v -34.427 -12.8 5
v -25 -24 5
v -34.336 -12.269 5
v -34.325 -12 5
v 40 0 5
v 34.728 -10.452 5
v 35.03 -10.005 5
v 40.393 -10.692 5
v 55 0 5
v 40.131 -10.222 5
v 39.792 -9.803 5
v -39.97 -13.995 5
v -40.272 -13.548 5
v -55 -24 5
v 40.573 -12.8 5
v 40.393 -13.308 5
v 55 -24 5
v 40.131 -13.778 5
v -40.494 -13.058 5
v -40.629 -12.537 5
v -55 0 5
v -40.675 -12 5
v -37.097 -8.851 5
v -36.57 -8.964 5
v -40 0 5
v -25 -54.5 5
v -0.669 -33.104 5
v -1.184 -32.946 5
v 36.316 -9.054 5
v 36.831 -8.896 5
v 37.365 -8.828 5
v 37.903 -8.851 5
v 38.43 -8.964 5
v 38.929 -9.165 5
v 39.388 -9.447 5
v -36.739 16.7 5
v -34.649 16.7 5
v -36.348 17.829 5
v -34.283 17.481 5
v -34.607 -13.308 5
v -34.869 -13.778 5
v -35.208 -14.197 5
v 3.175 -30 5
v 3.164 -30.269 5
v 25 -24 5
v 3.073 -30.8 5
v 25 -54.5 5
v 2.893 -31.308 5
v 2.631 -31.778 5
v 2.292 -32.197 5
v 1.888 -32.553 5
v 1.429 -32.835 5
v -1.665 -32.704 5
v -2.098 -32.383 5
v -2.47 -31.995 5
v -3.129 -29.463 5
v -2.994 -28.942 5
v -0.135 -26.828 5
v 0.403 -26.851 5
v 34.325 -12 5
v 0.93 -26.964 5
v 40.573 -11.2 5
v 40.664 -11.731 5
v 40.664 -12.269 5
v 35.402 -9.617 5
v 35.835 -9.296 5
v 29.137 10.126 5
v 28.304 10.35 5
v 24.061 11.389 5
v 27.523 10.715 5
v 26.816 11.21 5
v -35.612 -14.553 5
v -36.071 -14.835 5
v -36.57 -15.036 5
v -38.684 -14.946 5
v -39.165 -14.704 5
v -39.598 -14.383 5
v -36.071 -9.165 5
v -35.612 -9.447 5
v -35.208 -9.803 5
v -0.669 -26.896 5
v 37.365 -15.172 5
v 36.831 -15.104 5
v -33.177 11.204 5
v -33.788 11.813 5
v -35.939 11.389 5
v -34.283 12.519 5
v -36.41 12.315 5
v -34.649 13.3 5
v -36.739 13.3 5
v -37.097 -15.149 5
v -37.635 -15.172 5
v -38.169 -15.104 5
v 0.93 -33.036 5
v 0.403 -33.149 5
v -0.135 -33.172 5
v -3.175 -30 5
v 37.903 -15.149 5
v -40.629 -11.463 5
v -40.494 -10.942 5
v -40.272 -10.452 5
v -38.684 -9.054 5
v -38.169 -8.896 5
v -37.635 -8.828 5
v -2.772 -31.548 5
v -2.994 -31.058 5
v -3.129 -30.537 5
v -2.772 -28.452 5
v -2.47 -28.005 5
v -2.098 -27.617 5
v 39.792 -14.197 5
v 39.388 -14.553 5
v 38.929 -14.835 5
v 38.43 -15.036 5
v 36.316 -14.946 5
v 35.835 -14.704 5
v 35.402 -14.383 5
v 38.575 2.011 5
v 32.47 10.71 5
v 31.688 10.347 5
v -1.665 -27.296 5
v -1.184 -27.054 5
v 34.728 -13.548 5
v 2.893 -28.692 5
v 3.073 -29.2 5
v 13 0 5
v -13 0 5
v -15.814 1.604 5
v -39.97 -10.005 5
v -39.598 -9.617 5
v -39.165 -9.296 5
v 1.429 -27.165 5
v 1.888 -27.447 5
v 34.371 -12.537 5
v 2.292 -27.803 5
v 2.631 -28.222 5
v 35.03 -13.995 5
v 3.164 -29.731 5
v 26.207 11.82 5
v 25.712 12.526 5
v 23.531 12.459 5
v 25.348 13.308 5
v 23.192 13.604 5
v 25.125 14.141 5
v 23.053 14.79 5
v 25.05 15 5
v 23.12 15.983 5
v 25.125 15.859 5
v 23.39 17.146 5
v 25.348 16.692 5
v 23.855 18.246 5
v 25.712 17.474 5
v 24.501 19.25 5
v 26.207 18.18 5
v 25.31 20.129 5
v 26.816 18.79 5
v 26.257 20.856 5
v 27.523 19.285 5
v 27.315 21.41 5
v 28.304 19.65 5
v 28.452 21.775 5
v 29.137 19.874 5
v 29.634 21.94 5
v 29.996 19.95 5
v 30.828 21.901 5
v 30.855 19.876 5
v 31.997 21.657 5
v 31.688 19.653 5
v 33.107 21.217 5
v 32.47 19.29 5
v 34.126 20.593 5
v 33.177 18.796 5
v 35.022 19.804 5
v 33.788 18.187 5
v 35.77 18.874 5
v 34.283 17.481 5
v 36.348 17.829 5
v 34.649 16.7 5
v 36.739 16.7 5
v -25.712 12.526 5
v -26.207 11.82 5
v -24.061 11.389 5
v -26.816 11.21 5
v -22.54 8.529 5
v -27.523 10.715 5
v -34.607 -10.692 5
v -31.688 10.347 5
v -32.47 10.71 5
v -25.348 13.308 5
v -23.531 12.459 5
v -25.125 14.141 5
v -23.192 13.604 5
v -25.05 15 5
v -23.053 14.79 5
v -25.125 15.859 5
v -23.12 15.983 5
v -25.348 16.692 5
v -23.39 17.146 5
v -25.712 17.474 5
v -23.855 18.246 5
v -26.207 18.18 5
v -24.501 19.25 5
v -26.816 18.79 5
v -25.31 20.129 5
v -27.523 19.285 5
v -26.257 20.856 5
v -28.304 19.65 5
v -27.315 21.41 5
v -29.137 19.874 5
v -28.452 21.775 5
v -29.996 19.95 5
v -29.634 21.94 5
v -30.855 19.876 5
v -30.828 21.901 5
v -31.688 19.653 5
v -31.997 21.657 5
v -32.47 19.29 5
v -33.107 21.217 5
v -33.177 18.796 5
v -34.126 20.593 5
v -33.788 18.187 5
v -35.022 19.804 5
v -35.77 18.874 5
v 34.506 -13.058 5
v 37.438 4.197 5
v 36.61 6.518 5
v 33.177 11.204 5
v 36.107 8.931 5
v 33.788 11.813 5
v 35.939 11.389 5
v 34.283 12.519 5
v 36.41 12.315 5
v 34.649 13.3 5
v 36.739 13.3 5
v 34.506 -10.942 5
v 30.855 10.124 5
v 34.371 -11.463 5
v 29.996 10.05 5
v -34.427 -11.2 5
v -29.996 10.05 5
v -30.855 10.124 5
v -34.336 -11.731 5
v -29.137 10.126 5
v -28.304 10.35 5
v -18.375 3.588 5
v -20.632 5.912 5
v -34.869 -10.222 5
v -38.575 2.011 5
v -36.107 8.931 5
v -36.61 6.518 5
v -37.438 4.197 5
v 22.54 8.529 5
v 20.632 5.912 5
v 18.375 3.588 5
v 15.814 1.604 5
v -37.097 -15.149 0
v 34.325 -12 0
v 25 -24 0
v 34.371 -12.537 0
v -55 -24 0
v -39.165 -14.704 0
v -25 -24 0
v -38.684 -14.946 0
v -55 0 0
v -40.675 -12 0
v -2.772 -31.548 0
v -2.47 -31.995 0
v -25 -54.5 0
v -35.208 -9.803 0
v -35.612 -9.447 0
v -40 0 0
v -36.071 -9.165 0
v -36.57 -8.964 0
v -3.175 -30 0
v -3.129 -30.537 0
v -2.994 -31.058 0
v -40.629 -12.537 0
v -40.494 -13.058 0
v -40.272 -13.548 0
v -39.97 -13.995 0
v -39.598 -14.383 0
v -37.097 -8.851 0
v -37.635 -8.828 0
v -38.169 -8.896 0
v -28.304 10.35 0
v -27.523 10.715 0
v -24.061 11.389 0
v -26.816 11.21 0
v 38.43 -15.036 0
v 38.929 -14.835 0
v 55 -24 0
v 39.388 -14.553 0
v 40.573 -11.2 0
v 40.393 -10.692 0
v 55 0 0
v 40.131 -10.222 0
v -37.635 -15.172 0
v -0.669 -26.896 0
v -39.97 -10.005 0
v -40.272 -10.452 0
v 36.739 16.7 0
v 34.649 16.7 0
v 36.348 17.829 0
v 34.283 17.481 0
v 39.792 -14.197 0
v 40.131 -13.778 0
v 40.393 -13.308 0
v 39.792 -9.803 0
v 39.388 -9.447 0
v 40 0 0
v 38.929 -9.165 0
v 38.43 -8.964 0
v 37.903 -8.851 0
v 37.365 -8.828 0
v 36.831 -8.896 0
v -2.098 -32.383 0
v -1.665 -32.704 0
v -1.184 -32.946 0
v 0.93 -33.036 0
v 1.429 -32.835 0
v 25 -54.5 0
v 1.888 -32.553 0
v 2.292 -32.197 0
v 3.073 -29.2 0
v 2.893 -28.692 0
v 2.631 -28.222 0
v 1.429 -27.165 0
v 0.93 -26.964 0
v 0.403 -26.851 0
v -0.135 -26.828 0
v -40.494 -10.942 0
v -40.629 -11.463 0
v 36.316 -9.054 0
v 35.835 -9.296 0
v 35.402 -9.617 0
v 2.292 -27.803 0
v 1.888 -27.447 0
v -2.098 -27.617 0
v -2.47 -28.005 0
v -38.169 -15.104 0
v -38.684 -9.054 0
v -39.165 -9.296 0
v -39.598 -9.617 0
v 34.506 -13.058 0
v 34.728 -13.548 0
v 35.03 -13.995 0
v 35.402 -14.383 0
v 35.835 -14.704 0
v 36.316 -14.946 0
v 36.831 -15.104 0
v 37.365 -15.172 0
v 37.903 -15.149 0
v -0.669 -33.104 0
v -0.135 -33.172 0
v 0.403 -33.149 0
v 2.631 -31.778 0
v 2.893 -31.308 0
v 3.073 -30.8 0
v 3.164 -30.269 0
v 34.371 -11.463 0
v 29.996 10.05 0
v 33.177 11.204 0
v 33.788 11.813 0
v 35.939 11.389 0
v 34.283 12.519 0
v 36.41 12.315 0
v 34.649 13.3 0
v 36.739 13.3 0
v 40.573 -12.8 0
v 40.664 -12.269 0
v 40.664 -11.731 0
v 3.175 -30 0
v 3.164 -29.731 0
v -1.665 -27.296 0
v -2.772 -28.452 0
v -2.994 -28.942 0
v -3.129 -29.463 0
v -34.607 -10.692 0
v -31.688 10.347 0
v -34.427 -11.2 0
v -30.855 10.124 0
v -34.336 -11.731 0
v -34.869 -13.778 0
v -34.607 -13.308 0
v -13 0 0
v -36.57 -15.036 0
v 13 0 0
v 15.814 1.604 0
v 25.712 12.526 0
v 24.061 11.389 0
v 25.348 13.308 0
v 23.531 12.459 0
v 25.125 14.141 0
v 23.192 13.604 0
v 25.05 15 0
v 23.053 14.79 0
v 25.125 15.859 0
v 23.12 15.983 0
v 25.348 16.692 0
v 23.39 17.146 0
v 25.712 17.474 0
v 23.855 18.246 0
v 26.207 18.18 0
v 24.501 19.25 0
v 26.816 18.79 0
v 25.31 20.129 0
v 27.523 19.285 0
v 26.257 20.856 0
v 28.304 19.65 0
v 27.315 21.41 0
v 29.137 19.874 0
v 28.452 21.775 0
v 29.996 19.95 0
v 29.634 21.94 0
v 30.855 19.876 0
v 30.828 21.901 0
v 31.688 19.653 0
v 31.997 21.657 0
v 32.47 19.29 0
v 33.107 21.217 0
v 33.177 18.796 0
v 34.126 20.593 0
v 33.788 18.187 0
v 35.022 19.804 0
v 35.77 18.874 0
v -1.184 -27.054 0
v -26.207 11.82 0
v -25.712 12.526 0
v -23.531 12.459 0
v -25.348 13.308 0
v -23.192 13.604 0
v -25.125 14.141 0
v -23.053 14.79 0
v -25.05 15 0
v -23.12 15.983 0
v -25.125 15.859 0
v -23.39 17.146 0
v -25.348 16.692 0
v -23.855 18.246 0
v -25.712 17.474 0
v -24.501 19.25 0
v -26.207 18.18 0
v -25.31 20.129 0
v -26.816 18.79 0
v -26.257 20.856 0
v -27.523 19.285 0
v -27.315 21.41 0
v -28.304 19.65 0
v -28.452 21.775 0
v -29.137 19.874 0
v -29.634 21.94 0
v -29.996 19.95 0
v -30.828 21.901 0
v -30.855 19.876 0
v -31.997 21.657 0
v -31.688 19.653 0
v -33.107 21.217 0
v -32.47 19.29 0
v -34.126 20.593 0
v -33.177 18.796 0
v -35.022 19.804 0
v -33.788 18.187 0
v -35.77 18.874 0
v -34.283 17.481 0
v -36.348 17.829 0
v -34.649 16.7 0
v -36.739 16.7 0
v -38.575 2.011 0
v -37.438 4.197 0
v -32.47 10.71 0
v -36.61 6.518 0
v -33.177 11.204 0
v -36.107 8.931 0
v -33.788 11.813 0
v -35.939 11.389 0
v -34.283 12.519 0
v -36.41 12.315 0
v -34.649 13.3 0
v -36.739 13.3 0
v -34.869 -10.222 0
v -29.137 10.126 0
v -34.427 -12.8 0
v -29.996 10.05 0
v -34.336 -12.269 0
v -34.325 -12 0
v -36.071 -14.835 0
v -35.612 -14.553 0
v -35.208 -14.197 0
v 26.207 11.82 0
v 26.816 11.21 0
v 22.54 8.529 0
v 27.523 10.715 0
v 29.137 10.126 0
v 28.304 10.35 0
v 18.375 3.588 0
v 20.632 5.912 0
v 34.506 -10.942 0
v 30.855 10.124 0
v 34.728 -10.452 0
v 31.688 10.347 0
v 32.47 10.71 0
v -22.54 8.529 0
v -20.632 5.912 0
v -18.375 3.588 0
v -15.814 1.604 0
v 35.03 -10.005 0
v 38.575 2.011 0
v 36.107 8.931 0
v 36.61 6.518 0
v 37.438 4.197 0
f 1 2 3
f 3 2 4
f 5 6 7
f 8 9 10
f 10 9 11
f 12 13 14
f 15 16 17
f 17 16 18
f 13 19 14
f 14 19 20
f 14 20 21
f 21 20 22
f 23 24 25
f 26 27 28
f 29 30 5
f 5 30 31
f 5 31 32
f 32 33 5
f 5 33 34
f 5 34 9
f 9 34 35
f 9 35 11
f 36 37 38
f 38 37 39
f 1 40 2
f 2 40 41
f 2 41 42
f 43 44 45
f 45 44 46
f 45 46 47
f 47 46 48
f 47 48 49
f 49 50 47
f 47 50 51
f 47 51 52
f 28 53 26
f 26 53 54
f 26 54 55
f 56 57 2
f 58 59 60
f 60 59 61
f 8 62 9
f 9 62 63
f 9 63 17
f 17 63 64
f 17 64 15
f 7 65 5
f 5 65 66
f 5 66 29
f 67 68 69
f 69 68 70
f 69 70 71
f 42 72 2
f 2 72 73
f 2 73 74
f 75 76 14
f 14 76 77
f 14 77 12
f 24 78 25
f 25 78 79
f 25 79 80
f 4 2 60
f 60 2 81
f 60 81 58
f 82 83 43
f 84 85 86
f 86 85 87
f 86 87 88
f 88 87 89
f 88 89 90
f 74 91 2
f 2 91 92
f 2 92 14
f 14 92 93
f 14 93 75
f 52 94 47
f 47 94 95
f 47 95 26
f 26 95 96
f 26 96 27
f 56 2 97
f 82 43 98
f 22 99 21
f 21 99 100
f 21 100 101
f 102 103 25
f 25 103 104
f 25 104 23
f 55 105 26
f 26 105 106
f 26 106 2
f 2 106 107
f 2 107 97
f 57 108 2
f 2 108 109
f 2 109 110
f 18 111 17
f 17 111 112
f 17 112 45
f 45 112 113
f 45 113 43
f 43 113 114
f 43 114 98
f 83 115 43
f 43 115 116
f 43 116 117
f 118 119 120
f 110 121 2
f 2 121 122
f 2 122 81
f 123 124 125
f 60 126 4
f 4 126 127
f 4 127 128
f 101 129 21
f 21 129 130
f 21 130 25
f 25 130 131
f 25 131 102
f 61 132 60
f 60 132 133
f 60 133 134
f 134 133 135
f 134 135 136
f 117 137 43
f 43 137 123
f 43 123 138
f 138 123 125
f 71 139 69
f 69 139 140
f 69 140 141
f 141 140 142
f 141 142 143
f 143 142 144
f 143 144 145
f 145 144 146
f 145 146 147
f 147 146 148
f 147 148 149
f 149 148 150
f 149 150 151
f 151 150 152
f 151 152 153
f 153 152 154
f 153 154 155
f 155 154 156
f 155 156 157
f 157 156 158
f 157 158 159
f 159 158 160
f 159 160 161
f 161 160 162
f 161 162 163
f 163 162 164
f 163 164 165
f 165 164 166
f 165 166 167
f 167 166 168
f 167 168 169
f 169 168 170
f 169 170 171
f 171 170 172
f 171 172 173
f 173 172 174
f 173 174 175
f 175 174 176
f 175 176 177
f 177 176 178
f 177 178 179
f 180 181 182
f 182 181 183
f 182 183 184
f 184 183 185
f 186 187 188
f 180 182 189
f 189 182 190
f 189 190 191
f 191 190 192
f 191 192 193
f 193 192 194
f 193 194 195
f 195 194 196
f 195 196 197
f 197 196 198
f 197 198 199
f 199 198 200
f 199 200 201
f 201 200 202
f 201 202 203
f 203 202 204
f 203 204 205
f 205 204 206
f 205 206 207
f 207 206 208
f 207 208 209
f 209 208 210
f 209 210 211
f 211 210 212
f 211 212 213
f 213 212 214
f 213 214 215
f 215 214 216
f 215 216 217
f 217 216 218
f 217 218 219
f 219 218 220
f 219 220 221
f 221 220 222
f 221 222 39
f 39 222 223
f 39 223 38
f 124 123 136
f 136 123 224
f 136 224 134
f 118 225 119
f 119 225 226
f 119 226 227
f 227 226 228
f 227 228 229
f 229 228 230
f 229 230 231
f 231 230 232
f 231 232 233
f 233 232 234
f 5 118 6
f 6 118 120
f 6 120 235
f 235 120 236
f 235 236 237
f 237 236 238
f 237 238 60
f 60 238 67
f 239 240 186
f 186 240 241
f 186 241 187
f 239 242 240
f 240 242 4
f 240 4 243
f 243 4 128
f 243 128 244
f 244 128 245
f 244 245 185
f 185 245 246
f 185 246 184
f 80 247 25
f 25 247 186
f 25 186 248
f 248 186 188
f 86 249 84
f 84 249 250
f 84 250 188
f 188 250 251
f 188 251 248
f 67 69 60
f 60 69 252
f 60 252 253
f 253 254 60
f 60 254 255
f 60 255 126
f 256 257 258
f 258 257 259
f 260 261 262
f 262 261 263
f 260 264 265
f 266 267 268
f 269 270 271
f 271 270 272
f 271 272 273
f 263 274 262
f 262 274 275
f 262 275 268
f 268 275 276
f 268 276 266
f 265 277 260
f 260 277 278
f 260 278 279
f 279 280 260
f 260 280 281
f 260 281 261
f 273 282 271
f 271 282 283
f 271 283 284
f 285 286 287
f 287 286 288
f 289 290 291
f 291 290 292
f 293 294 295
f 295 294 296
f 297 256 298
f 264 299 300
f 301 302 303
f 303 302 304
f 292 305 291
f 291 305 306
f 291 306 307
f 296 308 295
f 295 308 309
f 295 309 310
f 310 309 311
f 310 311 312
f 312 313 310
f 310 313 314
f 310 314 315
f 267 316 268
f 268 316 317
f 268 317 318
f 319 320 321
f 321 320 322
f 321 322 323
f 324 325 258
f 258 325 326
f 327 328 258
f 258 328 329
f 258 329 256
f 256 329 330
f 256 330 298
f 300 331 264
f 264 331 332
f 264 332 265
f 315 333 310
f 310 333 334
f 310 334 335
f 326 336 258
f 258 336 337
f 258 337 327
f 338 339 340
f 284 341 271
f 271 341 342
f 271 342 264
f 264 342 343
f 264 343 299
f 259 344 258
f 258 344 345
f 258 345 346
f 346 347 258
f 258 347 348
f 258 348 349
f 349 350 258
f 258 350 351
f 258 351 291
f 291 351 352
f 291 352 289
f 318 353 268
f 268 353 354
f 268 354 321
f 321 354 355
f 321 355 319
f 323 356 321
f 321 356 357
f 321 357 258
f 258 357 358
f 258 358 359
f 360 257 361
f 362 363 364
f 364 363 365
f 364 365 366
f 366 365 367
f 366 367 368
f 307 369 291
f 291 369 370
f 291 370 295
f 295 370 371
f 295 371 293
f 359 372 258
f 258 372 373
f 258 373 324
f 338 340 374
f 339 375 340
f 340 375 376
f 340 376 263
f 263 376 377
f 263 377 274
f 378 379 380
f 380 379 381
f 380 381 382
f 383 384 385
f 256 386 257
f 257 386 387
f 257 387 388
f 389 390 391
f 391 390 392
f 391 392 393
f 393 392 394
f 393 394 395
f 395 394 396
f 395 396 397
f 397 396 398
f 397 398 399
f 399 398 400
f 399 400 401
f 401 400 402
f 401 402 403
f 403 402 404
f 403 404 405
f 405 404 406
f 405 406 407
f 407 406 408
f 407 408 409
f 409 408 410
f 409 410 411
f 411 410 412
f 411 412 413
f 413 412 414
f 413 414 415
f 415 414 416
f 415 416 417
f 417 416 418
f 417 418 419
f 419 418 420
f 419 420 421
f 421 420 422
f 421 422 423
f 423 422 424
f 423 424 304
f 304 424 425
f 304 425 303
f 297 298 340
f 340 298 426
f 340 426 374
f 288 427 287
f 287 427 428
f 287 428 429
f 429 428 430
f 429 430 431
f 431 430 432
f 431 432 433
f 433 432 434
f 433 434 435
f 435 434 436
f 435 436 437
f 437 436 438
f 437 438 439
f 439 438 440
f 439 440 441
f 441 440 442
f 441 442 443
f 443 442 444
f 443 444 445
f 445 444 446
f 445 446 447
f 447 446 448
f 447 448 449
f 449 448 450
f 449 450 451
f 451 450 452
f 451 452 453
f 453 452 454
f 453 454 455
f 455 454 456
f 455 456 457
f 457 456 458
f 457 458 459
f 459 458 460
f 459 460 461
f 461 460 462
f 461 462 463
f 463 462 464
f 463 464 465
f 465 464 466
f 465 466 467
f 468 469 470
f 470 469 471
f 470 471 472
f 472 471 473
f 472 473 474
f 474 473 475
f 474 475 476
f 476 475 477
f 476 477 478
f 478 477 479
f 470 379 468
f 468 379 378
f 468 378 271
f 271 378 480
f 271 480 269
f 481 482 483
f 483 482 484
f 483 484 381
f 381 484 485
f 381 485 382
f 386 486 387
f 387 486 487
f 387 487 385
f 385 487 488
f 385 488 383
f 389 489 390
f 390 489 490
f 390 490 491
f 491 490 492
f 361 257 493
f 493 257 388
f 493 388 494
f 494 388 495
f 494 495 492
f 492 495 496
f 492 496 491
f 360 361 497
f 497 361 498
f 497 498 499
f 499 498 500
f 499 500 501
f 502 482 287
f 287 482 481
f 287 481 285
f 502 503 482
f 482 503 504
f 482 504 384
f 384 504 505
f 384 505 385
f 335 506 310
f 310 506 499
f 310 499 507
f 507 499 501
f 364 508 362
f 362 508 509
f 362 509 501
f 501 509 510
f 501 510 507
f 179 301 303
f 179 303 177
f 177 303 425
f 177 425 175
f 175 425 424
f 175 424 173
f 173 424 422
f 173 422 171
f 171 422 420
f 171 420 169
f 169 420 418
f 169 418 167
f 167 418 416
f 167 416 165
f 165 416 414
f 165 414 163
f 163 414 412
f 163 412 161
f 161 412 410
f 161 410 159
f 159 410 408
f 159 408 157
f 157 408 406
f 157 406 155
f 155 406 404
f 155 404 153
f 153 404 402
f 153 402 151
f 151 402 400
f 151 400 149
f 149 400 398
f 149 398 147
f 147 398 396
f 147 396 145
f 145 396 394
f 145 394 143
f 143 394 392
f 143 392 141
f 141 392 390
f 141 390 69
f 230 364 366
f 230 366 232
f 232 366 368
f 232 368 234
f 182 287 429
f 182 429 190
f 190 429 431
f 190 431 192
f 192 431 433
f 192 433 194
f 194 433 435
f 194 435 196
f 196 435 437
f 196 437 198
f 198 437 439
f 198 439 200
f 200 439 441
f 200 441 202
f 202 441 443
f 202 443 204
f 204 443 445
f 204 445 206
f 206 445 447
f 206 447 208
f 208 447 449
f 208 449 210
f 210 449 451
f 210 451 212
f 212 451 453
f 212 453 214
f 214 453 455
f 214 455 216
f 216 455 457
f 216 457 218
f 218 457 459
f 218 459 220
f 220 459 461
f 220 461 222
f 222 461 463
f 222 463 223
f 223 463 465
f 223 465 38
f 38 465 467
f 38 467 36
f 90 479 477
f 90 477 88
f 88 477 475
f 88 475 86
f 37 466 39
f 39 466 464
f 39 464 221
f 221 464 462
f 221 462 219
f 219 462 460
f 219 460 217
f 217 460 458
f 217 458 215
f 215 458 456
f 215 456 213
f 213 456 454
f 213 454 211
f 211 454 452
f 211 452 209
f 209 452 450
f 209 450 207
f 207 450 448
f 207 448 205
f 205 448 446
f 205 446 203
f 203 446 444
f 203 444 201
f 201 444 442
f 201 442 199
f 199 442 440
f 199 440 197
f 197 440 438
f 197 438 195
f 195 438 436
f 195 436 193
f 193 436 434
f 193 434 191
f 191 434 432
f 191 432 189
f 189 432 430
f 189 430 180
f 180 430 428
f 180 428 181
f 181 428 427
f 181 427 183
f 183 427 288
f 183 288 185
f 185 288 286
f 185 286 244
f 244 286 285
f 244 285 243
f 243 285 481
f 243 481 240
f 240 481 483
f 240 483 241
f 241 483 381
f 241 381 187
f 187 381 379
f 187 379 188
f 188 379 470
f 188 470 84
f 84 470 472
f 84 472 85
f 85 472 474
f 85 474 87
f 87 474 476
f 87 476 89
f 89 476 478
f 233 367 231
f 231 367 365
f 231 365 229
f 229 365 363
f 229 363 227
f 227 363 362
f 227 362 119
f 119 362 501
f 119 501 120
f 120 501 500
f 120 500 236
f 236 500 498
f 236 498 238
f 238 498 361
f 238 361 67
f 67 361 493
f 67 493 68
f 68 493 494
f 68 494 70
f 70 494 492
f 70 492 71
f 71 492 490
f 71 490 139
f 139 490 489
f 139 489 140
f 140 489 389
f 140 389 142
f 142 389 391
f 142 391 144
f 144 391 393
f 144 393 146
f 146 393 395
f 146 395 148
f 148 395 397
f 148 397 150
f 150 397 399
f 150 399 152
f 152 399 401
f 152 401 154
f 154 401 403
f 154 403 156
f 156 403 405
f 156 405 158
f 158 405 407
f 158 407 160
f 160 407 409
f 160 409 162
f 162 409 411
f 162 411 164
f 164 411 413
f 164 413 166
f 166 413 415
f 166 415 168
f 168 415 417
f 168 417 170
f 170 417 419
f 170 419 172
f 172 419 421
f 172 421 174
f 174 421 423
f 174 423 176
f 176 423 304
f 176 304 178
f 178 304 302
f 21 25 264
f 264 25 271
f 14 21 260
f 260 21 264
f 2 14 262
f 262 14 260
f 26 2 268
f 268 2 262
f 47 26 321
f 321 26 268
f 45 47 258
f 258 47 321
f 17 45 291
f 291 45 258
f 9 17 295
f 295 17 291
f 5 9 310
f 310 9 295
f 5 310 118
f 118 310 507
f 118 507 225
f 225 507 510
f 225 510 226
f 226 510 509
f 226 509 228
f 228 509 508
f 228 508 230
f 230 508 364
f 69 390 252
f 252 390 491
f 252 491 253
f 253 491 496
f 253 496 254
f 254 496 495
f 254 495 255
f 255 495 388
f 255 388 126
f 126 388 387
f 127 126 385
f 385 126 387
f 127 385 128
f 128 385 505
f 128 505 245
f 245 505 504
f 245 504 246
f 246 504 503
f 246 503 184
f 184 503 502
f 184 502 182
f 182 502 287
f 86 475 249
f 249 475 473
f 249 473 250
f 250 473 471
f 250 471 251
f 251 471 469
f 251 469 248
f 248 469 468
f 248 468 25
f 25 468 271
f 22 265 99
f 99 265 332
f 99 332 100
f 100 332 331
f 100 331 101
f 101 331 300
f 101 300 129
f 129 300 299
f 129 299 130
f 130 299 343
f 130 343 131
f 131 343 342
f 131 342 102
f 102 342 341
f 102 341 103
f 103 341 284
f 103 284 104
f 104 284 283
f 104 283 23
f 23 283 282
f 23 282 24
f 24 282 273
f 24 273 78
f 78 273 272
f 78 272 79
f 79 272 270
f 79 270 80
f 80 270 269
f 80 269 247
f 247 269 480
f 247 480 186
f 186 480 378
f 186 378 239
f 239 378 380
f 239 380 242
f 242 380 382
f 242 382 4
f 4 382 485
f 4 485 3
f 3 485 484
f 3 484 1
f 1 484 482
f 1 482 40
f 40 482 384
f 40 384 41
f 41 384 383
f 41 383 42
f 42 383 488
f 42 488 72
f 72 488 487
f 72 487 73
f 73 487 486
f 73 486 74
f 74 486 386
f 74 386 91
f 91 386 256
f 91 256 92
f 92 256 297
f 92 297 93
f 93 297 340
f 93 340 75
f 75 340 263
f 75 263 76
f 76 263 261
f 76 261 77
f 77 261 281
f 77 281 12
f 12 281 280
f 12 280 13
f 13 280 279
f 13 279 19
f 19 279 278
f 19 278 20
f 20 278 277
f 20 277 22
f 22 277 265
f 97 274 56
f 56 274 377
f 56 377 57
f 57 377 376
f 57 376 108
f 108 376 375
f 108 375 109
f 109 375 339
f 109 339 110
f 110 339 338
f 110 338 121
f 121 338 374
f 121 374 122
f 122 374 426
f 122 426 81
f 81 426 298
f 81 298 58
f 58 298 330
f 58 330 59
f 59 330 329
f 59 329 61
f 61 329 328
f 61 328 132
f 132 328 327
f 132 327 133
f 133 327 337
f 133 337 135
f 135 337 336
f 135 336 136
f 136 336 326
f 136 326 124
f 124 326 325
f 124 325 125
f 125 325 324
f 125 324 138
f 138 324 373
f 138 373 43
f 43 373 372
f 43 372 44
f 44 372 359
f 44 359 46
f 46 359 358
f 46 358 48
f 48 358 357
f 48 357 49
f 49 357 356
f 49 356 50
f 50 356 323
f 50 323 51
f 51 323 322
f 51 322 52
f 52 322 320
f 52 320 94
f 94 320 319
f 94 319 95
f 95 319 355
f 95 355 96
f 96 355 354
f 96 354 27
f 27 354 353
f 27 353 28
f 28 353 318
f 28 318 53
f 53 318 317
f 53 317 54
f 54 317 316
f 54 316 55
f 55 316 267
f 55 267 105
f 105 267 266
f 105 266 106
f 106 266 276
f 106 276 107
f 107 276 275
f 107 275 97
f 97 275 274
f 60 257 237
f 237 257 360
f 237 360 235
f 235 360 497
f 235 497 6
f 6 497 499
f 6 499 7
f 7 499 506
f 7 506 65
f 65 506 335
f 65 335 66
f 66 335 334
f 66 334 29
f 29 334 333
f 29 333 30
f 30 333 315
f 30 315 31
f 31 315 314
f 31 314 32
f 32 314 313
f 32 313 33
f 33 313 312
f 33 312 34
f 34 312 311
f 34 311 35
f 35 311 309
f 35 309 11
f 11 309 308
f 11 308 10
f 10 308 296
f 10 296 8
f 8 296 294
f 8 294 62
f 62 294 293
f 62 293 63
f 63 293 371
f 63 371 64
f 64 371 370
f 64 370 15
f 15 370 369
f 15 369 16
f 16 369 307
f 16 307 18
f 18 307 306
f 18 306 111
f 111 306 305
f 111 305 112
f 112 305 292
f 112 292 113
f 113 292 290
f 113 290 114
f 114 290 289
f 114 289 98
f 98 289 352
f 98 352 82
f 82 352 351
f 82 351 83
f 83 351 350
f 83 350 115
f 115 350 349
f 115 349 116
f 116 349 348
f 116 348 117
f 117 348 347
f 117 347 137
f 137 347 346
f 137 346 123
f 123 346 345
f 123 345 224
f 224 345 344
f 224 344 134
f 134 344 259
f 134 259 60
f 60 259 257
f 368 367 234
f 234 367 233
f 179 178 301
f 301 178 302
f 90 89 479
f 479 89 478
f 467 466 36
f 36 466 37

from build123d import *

# Parameters (mm, degrees)
CROQUIS1_R              = 4.95
CROQUIS1_R_2            = 3.175
SALIENTE_EXTRUIR1_DEPTH = 5
CORTAR_EXTRUIR1_DEPTH   = 78.590270009


with BuildPart() as part:
    # Croquis1 → Saliente-Extruir1 (new body)
    with BuildSketch(Plane.XY):
        with BuildLine():
            Line((13, 0), (-13, 0))
            ThreePointArc((-13, 0), (-19.544656296, 4.709966775), (-24.061489507, 11.389377737))
            ThreePointArc((-24.061489507, 11.389377737), (-30, 21.95), (-35.938510493, 11.389377737))
            ThreePointArc((-35.938510493, 11.389377737), (-36.984260452, 5.34343649), (-40, 0))
            Line((-40, 0), (-55, 0))
            Line((-55, 0), (-55, -24))
            Line((-55, -24), (-25, -24))
            Line((-25, -24), (-25, -54.5))
            Line((-25, -54.5), (25, -54.5))
            Line((25, -54.5), (25, -24))
            Line((25, -24), (55, -24))
            Line((55, -24), (55, 0))
            Line((55, 0), (40, 0))
            ThreePointArc((40, 0), (36.984260452, 5.34343649), (35.938510493, 11.389377737))
            ThreePointArc((35.938510493, 11.389377737), (30, 21.95), (24.061489507, 11.389377737))
            ThreePointArc((24.061489507, 11.389377737), (19.544656296, 4.709966775), (13, 0))
        make_face()
        with Locations((-30, 15)):
            Circle(CROQUIS1_R, mode=Mode.SUBTRACT)
        with Locations((-37.5, -12)):
            Circle(CROQUIS1_R_2, mode=Mode.SUBTRACT)
        with Locations((0, -30)):
            Circle(CROQUIS1_R_2, mode=Mode.SUBTRACT)
        with Locations(Location((30, 15, 0), (0, 0, 180))):
            Circle(CROQUIS1_R, mode=Mode.SUBTRACT)
        with Locations(Location((37.5, -12, 0), (0, 0, 180))):
            Circle(CROQUIS1_R_2, mode=Mode.SUBTRACT)
    extrude(amount=SALIENTE_EXTRUIR1_DEPTH)

    # Croquis2 → Cortar-Extruir1 (cut, through all)
    with BuildSketch(Plane.XY):
        with BuildLine():
            Line((-30, 16.7), (-36.738879729, 16.7))
            ThreePointArc((-36.738879729, 16.7), (-36.95, 15), (-36.738879729, 13.3))
            Line((-36.738879729, 13.3), (-30, 13.3))
            Line((-30, 13.3), (-30, 16.7))
        make_face()
        with BuildLine():
            Line((30, 16.7), (30, 13.3))
            Line((30, 13.3), (36.738879729, 13.3))
            ThreePointArc((36.738879729, 13.3), (36.95, 15), (36.738879729, 16.7))
            Line((36.738879729, 16.7), (30, 16.7))
        make_face()
    extrude(amount=CORTAR_EXTRUIR1_DEPTH, mode=Mode.SUBTRACT)


solid = part.part
